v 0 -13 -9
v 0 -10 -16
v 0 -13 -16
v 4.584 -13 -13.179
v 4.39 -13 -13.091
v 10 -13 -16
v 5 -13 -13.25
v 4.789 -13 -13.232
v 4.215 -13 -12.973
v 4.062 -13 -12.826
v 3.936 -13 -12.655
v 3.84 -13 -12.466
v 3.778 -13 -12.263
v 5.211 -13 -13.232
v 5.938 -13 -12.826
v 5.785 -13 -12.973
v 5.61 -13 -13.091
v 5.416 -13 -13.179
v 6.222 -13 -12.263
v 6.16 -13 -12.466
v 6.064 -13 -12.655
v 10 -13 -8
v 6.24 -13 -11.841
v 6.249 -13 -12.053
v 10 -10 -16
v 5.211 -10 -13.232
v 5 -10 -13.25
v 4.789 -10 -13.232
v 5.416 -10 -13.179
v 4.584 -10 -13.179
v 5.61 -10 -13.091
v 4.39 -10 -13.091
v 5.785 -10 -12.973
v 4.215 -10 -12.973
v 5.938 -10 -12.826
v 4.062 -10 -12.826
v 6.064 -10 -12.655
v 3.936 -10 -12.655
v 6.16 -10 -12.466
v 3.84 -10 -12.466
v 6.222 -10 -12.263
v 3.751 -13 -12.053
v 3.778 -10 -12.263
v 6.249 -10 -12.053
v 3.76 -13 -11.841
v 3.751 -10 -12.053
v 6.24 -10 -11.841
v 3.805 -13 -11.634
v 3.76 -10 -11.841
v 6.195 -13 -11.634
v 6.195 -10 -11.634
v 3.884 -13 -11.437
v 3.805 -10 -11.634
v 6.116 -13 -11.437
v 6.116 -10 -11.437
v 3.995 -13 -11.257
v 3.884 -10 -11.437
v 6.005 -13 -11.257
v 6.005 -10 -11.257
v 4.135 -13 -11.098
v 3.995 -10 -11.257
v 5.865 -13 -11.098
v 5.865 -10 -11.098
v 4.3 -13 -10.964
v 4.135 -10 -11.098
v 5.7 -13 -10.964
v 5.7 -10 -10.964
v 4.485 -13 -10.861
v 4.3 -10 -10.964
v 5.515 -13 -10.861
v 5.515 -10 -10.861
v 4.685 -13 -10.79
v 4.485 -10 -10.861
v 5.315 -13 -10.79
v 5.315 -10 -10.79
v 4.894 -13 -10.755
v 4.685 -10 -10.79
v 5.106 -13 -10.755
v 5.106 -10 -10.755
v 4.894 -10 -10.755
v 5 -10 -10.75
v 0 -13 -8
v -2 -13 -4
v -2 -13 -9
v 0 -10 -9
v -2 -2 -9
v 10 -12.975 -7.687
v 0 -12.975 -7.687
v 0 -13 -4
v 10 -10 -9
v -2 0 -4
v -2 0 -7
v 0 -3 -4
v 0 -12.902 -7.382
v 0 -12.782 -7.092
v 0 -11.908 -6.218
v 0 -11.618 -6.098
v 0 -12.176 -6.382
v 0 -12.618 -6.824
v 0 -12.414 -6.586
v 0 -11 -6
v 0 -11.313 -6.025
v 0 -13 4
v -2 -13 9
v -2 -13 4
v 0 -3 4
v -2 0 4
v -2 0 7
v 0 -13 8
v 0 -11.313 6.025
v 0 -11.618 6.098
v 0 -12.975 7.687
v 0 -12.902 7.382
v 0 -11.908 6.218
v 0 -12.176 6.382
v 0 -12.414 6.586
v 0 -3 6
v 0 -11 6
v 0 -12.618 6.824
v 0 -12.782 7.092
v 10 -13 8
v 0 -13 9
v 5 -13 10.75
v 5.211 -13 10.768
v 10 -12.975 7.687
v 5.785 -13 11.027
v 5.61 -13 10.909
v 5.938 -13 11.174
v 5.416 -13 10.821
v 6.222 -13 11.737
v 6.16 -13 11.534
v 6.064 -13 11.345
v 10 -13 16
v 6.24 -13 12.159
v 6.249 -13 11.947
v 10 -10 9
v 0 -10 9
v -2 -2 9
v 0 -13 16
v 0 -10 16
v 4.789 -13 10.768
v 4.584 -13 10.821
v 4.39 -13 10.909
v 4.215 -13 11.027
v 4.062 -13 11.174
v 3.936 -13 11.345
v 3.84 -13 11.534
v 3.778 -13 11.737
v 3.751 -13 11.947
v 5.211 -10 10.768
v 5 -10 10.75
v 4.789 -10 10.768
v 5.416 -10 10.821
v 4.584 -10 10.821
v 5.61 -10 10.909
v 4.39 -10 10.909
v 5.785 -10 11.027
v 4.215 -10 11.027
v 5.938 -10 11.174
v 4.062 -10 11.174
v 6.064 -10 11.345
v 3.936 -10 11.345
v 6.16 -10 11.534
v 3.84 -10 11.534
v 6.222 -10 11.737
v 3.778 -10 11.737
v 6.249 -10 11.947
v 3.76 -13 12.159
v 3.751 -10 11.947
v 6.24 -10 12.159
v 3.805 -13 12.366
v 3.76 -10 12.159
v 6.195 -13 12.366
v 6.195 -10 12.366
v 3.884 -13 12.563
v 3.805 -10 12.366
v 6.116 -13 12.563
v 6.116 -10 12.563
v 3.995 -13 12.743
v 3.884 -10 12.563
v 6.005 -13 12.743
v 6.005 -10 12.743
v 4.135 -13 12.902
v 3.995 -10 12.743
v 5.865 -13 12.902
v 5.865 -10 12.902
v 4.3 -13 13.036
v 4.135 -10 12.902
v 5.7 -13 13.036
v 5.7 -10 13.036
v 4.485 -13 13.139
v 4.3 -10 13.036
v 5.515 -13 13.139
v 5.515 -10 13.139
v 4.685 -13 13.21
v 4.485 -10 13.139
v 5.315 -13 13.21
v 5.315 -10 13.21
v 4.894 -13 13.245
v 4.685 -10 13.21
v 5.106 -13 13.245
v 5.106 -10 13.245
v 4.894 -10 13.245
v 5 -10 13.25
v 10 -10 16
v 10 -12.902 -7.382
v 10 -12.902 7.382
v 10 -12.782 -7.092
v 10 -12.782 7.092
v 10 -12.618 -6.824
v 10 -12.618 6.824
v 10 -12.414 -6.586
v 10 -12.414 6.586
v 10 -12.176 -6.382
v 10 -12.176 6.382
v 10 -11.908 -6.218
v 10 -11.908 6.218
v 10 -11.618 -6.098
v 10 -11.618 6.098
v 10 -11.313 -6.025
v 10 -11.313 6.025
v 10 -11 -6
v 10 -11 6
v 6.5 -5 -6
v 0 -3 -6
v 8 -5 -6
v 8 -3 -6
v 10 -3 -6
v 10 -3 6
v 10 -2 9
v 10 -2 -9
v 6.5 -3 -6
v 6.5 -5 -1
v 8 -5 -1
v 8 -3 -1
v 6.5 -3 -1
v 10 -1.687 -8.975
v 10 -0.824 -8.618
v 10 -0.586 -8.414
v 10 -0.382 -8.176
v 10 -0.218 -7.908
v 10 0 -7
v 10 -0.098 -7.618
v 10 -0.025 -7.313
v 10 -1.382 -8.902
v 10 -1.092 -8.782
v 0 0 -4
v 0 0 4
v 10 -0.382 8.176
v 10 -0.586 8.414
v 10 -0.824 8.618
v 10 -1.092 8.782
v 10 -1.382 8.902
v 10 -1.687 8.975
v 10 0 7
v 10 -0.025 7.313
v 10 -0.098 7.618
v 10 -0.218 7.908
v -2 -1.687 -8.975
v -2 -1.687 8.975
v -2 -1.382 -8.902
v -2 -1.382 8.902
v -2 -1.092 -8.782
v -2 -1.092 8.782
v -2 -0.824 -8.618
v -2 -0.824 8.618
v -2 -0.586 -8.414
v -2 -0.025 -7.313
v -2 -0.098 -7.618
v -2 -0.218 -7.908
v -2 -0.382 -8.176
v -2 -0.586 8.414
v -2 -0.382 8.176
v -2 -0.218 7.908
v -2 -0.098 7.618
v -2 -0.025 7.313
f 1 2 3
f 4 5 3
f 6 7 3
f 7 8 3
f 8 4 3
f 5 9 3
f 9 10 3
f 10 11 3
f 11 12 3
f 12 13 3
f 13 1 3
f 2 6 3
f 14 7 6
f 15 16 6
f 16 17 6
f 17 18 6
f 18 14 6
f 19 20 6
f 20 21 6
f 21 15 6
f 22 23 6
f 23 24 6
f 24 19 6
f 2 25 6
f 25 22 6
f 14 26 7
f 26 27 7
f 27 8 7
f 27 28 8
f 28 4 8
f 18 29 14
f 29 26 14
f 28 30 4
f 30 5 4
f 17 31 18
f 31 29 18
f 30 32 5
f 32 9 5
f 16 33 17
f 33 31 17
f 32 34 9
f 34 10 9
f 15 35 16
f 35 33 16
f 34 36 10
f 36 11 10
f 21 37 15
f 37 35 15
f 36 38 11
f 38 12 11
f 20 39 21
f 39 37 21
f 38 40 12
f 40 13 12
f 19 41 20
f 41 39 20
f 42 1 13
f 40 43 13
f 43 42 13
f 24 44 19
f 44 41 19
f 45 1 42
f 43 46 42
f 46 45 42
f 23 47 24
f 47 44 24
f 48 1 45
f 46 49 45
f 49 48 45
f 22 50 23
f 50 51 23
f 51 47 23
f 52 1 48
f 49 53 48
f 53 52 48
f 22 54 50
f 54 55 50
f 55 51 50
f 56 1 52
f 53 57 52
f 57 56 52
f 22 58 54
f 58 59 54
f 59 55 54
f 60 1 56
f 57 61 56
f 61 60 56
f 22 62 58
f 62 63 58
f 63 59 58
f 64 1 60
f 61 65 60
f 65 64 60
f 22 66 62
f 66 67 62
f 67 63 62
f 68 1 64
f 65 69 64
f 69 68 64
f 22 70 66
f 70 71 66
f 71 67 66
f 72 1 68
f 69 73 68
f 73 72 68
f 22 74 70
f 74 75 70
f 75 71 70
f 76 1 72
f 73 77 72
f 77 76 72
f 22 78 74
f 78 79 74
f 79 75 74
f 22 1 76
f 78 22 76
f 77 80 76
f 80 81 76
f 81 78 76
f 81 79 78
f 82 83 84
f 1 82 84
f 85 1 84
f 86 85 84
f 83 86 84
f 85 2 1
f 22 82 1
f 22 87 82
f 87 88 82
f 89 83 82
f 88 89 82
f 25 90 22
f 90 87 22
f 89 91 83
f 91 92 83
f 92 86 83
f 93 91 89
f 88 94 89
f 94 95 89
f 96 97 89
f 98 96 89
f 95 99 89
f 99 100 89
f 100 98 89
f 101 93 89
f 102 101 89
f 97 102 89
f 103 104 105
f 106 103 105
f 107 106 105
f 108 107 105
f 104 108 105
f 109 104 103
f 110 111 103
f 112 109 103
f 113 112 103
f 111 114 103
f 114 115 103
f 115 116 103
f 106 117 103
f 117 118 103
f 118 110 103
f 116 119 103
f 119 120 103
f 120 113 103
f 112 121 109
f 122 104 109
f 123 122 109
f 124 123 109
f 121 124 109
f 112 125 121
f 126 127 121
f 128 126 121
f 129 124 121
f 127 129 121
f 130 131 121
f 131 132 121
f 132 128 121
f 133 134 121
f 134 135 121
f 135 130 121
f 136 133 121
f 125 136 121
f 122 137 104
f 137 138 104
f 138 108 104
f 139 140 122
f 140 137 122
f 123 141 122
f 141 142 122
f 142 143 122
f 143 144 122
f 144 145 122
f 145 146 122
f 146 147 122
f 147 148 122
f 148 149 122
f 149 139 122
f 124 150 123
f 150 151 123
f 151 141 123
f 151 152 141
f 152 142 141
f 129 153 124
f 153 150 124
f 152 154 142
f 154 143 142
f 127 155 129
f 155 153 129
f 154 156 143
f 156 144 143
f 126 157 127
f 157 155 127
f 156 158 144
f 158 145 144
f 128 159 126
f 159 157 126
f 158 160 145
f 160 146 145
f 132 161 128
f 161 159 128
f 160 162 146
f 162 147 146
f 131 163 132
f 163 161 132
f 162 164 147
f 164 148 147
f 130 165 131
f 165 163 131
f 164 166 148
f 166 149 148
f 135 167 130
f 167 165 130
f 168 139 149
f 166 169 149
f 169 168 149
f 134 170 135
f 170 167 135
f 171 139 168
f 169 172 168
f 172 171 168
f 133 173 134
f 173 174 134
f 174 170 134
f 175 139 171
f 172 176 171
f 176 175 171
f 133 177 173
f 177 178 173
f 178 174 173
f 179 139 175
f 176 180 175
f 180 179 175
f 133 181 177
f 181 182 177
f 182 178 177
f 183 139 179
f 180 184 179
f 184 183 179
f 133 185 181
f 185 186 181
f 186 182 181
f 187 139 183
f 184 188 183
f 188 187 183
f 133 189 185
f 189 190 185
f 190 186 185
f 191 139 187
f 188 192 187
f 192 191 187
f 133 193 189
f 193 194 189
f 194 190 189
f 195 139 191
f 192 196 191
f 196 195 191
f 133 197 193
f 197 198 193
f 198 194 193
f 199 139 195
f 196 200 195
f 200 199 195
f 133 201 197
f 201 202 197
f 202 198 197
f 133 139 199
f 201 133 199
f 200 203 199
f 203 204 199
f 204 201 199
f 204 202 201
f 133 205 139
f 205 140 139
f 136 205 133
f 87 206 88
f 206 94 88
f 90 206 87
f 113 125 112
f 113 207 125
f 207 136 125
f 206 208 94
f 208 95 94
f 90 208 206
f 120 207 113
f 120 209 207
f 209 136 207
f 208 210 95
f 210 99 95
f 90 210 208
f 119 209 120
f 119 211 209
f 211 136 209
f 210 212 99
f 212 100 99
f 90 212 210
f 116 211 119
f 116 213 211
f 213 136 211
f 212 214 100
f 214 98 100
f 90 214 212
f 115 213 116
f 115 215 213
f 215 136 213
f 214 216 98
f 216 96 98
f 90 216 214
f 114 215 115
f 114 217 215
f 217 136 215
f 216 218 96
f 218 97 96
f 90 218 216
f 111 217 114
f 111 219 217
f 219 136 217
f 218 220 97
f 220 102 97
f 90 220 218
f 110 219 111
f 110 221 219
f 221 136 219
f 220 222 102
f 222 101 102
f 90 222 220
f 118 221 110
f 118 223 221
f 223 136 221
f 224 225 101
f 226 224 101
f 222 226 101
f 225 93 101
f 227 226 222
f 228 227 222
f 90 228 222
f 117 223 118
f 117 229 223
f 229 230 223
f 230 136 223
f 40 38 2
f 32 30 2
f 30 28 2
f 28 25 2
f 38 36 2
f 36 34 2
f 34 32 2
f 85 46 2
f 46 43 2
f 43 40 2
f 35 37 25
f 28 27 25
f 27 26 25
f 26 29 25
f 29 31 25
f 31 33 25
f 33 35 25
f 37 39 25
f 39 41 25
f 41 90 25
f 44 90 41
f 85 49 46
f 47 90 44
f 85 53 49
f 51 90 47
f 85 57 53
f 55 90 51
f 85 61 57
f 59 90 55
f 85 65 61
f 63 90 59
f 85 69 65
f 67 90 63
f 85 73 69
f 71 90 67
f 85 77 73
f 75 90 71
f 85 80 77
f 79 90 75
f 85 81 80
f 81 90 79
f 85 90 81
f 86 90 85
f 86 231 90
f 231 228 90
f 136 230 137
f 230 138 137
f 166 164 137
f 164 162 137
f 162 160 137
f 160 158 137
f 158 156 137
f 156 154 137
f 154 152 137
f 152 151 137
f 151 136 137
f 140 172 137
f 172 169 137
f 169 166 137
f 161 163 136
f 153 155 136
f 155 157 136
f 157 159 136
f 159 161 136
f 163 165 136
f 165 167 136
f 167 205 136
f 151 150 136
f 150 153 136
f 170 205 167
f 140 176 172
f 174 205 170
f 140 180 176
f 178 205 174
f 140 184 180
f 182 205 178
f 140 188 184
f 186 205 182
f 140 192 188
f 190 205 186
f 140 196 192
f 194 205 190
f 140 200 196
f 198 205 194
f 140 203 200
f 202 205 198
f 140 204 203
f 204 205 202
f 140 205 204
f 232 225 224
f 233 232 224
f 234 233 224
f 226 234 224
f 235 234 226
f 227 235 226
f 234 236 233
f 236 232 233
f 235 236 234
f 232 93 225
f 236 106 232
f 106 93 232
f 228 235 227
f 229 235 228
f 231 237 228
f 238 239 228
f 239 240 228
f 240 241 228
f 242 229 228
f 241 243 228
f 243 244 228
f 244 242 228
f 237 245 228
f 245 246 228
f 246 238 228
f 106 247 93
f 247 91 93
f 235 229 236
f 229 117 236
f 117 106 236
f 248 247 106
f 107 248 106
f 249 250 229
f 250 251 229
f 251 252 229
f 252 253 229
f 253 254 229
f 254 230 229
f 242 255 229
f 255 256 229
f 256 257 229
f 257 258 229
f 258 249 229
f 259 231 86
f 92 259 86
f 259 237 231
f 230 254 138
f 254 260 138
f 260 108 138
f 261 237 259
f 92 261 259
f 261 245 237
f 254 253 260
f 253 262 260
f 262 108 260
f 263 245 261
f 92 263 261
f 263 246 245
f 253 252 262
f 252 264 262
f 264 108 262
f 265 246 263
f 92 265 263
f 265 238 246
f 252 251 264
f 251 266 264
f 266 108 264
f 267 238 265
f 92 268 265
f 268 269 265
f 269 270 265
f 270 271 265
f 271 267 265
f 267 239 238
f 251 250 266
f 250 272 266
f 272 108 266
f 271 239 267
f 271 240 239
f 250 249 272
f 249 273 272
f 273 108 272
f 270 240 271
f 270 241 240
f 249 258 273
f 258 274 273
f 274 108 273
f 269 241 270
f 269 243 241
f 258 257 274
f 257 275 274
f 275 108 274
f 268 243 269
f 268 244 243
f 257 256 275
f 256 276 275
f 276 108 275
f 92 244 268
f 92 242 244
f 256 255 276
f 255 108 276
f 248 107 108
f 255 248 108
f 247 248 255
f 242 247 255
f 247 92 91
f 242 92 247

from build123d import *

# Parameters (mm, degrees)
MAIN_DEPTH      = 10
FILLET1_R       = 2
FILLET2_R       = 2
SKETCH2_R       = 1.25
BOLT_SLOT_DEPTH = 3
SKETCH3_W       = 5
SKETCH3_H       = 13
FRONT_TAB_DEPTH = 2
SKETCH4_W       = 1.5
SKETCH4_H       = 5
TOP_TAB_DEPTH   = 2
FILLET3_R       = 2
FILLET4_R       = 2


with BuildPart() as part:
    # Sketch1 → main (new body)
    with BuildSketch(Plane(origin=(0, 0, 0), x_dir=(0, 0, -1), z_dir=(1, 0, 0))):
        Polygon((-9, 0), (9, 0), (9, -10), (16, -10), (16, -13), (6, -13), (6, -3), (-6, -3), (-6, -13), (-16, -13), (-16, -10), (-9, -10), align=None)
    extrude(amount=MAIN_DEPTH)

    # Fillet1
    fillet1_edges = [part.edges().sort_by_distance(p)[0] for p in [
        (5, -13, 6),
    ]]
    fillet(fillet1_edges, radius=FILLET1_R)

    # Fillet2
    fillet2_edges = [part.edges().sort_by_distance(p)[0] for p in [
        (5, -13, -6),
    ]]
    fillet(fillet2_edges, radius=FILLET2_R)

    # Sketch2 → bolt slot (cut)
    with BuildSketch(Plane.XZ.offset(13)):
        with Locations(Location((5, 12, 0), (0, 0, 270))):
            Circle(SKETCH2_R)
        with Locations(Location((5, -12, 0), (0, 0, 270))):
            Circle(SKETCH2_R)
    extrude(amount=-BOLT_SLOT_DEPTH, mode=Mode.SUBTRACT)

    # Sketch3 → front tab (add)
    with BuildSketch(Plane.ZY):
        with Locations((-6.5, -6.5)):
            Rectangle(SKETCH3_W, SKETCH3_H)
        with Locations((6.5, -6.5)):
            Rectangle(SKETCH3_W, SKETCH3_H)
    extrude(amount=FRONT_TAB_DEPTH)

    # Sketch4 → top tab (add)
    with BuildSketch(Plane.XZ.offset(3)):
        with Locations((7.25, -3.5)):
            Rectangle(SKETCH4_W, SKETCH4_H)
    extrude(amount=TOP_TAB_DEPTH)

    # Fillet3
    fillet3_edges = [part.edges().sort_by_distance(p)[0] for p in [
        (4, 0, -9),
    ]]
    fillet(fillet3_edges, radius=FILLET3_R)

    # Fillet4
    fillet4_edges = [part.edges().sort_by_distance(p)[0] for p in [
        (4, 0, 9),
    ]]
    fillet(fillet4_edges, radius=FILLET4_R)


solid = part.part
